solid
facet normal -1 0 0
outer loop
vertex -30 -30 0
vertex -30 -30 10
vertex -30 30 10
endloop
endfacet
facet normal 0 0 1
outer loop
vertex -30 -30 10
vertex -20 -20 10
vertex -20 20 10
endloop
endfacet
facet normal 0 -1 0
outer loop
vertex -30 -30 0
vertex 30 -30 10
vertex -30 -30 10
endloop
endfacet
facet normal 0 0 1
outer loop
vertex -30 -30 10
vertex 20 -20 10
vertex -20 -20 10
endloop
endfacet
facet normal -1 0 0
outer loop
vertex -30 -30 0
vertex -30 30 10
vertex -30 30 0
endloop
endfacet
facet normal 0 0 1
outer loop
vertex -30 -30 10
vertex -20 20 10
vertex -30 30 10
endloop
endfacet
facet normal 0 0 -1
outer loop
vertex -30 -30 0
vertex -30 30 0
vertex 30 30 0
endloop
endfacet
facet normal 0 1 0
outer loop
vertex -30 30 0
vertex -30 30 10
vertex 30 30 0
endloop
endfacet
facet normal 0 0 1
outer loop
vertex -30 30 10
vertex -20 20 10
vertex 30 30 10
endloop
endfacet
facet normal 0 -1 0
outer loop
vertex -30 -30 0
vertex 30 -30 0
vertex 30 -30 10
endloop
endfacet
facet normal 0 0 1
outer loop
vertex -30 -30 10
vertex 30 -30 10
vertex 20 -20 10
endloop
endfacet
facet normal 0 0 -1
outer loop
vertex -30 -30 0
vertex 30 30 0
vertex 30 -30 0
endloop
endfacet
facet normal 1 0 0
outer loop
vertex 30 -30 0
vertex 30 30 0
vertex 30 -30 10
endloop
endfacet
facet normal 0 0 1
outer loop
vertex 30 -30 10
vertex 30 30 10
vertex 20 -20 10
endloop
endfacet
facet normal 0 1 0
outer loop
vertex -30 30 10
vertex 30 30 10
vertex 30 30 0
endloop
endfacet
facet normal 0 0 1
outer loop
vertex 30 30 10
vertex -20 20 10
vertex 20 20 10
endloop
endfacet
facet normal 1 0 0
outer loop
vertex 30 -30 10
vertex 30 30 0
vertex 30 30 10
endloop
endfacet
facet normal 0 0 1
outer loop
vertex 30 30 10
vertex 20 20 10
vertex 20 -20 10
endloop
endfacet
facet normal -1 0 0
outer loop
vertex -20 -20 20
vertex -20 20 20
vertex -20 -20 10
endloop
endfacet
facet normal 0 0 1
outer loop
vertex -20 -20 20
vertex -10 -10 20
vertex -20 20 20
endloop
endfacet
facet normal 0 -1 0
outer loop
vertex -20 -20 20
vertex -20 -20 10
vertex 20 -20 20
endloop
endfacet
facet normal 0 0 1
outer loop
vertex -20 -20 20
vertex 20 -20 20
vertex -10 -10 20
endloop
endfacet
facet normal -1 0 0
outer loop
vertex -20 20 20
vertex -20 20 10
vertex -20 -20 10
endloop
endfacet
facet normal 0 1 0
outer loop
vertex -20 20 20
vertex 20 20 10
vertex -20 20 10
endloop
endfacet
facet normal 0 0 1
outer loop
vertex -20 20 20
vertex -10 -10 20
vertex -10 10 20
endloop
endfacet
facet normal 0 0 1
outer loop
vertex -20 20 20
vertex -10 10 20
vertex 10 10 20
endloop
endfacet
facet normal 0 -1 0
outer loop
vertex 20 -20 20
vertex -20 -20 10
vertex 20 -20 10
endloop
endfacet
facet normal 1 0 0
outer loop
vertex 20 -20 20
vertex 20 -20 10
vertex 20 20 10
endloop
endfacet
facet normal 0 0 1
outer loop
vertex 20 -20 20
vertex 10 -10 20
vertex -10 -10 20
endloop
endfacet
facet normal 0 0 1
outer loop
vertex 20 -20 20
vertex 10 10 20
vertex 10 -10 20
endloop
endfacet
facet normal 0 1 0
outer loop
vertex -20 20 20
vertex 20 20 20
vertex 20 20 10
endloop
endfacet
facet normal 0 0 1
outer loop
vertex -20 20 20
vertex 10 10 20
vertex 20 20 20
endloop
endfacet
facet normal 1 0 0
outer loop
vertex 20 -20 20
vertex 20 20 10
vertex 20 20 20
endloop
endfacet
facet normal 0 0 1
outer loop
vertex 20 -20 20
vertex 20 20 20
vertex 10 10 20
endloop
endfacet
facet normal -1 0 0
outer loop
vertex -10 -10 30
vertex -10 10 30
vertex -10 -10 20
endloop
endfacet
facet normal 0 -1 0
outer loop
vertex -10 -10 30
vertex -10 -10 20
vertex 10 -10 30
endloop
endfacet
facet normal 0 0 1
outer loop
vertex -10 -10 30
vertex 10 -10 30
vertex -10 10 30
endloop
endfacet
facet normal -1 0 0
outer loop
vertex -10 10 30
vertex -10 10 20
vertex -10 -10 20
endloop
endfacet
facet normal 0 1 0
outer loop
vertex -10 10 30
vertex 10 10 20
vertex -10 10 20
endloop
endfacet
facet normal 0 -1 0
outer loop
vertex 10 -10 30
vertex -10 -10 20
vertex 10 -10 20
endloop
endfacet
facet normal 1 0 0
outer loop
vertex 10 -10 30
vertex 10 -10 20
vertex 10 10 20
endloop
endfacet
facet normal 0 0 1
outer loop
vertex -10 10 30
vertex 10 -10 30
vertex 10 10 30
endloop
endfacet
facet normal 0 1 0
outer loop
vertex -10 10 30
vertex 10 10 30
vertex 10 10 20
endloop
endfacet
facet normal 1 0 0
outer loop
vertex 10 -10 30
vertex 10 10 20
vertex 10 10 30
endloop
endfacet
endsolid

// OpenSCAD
// 1段目 (60mm x 60mm x 10mm)
translate([0, 0, 5])
    cube([60, 60, 10], center = true);

// 2段目 (40mm x 40mm x 10mm)
translate([0, 0, 15])
    cube([40, 40, 10], center = true);

// 3段目 (20mm x 20mm x 10mm)
translate([0, 0, 25])
    cube([20, 20, 10], center = true);
